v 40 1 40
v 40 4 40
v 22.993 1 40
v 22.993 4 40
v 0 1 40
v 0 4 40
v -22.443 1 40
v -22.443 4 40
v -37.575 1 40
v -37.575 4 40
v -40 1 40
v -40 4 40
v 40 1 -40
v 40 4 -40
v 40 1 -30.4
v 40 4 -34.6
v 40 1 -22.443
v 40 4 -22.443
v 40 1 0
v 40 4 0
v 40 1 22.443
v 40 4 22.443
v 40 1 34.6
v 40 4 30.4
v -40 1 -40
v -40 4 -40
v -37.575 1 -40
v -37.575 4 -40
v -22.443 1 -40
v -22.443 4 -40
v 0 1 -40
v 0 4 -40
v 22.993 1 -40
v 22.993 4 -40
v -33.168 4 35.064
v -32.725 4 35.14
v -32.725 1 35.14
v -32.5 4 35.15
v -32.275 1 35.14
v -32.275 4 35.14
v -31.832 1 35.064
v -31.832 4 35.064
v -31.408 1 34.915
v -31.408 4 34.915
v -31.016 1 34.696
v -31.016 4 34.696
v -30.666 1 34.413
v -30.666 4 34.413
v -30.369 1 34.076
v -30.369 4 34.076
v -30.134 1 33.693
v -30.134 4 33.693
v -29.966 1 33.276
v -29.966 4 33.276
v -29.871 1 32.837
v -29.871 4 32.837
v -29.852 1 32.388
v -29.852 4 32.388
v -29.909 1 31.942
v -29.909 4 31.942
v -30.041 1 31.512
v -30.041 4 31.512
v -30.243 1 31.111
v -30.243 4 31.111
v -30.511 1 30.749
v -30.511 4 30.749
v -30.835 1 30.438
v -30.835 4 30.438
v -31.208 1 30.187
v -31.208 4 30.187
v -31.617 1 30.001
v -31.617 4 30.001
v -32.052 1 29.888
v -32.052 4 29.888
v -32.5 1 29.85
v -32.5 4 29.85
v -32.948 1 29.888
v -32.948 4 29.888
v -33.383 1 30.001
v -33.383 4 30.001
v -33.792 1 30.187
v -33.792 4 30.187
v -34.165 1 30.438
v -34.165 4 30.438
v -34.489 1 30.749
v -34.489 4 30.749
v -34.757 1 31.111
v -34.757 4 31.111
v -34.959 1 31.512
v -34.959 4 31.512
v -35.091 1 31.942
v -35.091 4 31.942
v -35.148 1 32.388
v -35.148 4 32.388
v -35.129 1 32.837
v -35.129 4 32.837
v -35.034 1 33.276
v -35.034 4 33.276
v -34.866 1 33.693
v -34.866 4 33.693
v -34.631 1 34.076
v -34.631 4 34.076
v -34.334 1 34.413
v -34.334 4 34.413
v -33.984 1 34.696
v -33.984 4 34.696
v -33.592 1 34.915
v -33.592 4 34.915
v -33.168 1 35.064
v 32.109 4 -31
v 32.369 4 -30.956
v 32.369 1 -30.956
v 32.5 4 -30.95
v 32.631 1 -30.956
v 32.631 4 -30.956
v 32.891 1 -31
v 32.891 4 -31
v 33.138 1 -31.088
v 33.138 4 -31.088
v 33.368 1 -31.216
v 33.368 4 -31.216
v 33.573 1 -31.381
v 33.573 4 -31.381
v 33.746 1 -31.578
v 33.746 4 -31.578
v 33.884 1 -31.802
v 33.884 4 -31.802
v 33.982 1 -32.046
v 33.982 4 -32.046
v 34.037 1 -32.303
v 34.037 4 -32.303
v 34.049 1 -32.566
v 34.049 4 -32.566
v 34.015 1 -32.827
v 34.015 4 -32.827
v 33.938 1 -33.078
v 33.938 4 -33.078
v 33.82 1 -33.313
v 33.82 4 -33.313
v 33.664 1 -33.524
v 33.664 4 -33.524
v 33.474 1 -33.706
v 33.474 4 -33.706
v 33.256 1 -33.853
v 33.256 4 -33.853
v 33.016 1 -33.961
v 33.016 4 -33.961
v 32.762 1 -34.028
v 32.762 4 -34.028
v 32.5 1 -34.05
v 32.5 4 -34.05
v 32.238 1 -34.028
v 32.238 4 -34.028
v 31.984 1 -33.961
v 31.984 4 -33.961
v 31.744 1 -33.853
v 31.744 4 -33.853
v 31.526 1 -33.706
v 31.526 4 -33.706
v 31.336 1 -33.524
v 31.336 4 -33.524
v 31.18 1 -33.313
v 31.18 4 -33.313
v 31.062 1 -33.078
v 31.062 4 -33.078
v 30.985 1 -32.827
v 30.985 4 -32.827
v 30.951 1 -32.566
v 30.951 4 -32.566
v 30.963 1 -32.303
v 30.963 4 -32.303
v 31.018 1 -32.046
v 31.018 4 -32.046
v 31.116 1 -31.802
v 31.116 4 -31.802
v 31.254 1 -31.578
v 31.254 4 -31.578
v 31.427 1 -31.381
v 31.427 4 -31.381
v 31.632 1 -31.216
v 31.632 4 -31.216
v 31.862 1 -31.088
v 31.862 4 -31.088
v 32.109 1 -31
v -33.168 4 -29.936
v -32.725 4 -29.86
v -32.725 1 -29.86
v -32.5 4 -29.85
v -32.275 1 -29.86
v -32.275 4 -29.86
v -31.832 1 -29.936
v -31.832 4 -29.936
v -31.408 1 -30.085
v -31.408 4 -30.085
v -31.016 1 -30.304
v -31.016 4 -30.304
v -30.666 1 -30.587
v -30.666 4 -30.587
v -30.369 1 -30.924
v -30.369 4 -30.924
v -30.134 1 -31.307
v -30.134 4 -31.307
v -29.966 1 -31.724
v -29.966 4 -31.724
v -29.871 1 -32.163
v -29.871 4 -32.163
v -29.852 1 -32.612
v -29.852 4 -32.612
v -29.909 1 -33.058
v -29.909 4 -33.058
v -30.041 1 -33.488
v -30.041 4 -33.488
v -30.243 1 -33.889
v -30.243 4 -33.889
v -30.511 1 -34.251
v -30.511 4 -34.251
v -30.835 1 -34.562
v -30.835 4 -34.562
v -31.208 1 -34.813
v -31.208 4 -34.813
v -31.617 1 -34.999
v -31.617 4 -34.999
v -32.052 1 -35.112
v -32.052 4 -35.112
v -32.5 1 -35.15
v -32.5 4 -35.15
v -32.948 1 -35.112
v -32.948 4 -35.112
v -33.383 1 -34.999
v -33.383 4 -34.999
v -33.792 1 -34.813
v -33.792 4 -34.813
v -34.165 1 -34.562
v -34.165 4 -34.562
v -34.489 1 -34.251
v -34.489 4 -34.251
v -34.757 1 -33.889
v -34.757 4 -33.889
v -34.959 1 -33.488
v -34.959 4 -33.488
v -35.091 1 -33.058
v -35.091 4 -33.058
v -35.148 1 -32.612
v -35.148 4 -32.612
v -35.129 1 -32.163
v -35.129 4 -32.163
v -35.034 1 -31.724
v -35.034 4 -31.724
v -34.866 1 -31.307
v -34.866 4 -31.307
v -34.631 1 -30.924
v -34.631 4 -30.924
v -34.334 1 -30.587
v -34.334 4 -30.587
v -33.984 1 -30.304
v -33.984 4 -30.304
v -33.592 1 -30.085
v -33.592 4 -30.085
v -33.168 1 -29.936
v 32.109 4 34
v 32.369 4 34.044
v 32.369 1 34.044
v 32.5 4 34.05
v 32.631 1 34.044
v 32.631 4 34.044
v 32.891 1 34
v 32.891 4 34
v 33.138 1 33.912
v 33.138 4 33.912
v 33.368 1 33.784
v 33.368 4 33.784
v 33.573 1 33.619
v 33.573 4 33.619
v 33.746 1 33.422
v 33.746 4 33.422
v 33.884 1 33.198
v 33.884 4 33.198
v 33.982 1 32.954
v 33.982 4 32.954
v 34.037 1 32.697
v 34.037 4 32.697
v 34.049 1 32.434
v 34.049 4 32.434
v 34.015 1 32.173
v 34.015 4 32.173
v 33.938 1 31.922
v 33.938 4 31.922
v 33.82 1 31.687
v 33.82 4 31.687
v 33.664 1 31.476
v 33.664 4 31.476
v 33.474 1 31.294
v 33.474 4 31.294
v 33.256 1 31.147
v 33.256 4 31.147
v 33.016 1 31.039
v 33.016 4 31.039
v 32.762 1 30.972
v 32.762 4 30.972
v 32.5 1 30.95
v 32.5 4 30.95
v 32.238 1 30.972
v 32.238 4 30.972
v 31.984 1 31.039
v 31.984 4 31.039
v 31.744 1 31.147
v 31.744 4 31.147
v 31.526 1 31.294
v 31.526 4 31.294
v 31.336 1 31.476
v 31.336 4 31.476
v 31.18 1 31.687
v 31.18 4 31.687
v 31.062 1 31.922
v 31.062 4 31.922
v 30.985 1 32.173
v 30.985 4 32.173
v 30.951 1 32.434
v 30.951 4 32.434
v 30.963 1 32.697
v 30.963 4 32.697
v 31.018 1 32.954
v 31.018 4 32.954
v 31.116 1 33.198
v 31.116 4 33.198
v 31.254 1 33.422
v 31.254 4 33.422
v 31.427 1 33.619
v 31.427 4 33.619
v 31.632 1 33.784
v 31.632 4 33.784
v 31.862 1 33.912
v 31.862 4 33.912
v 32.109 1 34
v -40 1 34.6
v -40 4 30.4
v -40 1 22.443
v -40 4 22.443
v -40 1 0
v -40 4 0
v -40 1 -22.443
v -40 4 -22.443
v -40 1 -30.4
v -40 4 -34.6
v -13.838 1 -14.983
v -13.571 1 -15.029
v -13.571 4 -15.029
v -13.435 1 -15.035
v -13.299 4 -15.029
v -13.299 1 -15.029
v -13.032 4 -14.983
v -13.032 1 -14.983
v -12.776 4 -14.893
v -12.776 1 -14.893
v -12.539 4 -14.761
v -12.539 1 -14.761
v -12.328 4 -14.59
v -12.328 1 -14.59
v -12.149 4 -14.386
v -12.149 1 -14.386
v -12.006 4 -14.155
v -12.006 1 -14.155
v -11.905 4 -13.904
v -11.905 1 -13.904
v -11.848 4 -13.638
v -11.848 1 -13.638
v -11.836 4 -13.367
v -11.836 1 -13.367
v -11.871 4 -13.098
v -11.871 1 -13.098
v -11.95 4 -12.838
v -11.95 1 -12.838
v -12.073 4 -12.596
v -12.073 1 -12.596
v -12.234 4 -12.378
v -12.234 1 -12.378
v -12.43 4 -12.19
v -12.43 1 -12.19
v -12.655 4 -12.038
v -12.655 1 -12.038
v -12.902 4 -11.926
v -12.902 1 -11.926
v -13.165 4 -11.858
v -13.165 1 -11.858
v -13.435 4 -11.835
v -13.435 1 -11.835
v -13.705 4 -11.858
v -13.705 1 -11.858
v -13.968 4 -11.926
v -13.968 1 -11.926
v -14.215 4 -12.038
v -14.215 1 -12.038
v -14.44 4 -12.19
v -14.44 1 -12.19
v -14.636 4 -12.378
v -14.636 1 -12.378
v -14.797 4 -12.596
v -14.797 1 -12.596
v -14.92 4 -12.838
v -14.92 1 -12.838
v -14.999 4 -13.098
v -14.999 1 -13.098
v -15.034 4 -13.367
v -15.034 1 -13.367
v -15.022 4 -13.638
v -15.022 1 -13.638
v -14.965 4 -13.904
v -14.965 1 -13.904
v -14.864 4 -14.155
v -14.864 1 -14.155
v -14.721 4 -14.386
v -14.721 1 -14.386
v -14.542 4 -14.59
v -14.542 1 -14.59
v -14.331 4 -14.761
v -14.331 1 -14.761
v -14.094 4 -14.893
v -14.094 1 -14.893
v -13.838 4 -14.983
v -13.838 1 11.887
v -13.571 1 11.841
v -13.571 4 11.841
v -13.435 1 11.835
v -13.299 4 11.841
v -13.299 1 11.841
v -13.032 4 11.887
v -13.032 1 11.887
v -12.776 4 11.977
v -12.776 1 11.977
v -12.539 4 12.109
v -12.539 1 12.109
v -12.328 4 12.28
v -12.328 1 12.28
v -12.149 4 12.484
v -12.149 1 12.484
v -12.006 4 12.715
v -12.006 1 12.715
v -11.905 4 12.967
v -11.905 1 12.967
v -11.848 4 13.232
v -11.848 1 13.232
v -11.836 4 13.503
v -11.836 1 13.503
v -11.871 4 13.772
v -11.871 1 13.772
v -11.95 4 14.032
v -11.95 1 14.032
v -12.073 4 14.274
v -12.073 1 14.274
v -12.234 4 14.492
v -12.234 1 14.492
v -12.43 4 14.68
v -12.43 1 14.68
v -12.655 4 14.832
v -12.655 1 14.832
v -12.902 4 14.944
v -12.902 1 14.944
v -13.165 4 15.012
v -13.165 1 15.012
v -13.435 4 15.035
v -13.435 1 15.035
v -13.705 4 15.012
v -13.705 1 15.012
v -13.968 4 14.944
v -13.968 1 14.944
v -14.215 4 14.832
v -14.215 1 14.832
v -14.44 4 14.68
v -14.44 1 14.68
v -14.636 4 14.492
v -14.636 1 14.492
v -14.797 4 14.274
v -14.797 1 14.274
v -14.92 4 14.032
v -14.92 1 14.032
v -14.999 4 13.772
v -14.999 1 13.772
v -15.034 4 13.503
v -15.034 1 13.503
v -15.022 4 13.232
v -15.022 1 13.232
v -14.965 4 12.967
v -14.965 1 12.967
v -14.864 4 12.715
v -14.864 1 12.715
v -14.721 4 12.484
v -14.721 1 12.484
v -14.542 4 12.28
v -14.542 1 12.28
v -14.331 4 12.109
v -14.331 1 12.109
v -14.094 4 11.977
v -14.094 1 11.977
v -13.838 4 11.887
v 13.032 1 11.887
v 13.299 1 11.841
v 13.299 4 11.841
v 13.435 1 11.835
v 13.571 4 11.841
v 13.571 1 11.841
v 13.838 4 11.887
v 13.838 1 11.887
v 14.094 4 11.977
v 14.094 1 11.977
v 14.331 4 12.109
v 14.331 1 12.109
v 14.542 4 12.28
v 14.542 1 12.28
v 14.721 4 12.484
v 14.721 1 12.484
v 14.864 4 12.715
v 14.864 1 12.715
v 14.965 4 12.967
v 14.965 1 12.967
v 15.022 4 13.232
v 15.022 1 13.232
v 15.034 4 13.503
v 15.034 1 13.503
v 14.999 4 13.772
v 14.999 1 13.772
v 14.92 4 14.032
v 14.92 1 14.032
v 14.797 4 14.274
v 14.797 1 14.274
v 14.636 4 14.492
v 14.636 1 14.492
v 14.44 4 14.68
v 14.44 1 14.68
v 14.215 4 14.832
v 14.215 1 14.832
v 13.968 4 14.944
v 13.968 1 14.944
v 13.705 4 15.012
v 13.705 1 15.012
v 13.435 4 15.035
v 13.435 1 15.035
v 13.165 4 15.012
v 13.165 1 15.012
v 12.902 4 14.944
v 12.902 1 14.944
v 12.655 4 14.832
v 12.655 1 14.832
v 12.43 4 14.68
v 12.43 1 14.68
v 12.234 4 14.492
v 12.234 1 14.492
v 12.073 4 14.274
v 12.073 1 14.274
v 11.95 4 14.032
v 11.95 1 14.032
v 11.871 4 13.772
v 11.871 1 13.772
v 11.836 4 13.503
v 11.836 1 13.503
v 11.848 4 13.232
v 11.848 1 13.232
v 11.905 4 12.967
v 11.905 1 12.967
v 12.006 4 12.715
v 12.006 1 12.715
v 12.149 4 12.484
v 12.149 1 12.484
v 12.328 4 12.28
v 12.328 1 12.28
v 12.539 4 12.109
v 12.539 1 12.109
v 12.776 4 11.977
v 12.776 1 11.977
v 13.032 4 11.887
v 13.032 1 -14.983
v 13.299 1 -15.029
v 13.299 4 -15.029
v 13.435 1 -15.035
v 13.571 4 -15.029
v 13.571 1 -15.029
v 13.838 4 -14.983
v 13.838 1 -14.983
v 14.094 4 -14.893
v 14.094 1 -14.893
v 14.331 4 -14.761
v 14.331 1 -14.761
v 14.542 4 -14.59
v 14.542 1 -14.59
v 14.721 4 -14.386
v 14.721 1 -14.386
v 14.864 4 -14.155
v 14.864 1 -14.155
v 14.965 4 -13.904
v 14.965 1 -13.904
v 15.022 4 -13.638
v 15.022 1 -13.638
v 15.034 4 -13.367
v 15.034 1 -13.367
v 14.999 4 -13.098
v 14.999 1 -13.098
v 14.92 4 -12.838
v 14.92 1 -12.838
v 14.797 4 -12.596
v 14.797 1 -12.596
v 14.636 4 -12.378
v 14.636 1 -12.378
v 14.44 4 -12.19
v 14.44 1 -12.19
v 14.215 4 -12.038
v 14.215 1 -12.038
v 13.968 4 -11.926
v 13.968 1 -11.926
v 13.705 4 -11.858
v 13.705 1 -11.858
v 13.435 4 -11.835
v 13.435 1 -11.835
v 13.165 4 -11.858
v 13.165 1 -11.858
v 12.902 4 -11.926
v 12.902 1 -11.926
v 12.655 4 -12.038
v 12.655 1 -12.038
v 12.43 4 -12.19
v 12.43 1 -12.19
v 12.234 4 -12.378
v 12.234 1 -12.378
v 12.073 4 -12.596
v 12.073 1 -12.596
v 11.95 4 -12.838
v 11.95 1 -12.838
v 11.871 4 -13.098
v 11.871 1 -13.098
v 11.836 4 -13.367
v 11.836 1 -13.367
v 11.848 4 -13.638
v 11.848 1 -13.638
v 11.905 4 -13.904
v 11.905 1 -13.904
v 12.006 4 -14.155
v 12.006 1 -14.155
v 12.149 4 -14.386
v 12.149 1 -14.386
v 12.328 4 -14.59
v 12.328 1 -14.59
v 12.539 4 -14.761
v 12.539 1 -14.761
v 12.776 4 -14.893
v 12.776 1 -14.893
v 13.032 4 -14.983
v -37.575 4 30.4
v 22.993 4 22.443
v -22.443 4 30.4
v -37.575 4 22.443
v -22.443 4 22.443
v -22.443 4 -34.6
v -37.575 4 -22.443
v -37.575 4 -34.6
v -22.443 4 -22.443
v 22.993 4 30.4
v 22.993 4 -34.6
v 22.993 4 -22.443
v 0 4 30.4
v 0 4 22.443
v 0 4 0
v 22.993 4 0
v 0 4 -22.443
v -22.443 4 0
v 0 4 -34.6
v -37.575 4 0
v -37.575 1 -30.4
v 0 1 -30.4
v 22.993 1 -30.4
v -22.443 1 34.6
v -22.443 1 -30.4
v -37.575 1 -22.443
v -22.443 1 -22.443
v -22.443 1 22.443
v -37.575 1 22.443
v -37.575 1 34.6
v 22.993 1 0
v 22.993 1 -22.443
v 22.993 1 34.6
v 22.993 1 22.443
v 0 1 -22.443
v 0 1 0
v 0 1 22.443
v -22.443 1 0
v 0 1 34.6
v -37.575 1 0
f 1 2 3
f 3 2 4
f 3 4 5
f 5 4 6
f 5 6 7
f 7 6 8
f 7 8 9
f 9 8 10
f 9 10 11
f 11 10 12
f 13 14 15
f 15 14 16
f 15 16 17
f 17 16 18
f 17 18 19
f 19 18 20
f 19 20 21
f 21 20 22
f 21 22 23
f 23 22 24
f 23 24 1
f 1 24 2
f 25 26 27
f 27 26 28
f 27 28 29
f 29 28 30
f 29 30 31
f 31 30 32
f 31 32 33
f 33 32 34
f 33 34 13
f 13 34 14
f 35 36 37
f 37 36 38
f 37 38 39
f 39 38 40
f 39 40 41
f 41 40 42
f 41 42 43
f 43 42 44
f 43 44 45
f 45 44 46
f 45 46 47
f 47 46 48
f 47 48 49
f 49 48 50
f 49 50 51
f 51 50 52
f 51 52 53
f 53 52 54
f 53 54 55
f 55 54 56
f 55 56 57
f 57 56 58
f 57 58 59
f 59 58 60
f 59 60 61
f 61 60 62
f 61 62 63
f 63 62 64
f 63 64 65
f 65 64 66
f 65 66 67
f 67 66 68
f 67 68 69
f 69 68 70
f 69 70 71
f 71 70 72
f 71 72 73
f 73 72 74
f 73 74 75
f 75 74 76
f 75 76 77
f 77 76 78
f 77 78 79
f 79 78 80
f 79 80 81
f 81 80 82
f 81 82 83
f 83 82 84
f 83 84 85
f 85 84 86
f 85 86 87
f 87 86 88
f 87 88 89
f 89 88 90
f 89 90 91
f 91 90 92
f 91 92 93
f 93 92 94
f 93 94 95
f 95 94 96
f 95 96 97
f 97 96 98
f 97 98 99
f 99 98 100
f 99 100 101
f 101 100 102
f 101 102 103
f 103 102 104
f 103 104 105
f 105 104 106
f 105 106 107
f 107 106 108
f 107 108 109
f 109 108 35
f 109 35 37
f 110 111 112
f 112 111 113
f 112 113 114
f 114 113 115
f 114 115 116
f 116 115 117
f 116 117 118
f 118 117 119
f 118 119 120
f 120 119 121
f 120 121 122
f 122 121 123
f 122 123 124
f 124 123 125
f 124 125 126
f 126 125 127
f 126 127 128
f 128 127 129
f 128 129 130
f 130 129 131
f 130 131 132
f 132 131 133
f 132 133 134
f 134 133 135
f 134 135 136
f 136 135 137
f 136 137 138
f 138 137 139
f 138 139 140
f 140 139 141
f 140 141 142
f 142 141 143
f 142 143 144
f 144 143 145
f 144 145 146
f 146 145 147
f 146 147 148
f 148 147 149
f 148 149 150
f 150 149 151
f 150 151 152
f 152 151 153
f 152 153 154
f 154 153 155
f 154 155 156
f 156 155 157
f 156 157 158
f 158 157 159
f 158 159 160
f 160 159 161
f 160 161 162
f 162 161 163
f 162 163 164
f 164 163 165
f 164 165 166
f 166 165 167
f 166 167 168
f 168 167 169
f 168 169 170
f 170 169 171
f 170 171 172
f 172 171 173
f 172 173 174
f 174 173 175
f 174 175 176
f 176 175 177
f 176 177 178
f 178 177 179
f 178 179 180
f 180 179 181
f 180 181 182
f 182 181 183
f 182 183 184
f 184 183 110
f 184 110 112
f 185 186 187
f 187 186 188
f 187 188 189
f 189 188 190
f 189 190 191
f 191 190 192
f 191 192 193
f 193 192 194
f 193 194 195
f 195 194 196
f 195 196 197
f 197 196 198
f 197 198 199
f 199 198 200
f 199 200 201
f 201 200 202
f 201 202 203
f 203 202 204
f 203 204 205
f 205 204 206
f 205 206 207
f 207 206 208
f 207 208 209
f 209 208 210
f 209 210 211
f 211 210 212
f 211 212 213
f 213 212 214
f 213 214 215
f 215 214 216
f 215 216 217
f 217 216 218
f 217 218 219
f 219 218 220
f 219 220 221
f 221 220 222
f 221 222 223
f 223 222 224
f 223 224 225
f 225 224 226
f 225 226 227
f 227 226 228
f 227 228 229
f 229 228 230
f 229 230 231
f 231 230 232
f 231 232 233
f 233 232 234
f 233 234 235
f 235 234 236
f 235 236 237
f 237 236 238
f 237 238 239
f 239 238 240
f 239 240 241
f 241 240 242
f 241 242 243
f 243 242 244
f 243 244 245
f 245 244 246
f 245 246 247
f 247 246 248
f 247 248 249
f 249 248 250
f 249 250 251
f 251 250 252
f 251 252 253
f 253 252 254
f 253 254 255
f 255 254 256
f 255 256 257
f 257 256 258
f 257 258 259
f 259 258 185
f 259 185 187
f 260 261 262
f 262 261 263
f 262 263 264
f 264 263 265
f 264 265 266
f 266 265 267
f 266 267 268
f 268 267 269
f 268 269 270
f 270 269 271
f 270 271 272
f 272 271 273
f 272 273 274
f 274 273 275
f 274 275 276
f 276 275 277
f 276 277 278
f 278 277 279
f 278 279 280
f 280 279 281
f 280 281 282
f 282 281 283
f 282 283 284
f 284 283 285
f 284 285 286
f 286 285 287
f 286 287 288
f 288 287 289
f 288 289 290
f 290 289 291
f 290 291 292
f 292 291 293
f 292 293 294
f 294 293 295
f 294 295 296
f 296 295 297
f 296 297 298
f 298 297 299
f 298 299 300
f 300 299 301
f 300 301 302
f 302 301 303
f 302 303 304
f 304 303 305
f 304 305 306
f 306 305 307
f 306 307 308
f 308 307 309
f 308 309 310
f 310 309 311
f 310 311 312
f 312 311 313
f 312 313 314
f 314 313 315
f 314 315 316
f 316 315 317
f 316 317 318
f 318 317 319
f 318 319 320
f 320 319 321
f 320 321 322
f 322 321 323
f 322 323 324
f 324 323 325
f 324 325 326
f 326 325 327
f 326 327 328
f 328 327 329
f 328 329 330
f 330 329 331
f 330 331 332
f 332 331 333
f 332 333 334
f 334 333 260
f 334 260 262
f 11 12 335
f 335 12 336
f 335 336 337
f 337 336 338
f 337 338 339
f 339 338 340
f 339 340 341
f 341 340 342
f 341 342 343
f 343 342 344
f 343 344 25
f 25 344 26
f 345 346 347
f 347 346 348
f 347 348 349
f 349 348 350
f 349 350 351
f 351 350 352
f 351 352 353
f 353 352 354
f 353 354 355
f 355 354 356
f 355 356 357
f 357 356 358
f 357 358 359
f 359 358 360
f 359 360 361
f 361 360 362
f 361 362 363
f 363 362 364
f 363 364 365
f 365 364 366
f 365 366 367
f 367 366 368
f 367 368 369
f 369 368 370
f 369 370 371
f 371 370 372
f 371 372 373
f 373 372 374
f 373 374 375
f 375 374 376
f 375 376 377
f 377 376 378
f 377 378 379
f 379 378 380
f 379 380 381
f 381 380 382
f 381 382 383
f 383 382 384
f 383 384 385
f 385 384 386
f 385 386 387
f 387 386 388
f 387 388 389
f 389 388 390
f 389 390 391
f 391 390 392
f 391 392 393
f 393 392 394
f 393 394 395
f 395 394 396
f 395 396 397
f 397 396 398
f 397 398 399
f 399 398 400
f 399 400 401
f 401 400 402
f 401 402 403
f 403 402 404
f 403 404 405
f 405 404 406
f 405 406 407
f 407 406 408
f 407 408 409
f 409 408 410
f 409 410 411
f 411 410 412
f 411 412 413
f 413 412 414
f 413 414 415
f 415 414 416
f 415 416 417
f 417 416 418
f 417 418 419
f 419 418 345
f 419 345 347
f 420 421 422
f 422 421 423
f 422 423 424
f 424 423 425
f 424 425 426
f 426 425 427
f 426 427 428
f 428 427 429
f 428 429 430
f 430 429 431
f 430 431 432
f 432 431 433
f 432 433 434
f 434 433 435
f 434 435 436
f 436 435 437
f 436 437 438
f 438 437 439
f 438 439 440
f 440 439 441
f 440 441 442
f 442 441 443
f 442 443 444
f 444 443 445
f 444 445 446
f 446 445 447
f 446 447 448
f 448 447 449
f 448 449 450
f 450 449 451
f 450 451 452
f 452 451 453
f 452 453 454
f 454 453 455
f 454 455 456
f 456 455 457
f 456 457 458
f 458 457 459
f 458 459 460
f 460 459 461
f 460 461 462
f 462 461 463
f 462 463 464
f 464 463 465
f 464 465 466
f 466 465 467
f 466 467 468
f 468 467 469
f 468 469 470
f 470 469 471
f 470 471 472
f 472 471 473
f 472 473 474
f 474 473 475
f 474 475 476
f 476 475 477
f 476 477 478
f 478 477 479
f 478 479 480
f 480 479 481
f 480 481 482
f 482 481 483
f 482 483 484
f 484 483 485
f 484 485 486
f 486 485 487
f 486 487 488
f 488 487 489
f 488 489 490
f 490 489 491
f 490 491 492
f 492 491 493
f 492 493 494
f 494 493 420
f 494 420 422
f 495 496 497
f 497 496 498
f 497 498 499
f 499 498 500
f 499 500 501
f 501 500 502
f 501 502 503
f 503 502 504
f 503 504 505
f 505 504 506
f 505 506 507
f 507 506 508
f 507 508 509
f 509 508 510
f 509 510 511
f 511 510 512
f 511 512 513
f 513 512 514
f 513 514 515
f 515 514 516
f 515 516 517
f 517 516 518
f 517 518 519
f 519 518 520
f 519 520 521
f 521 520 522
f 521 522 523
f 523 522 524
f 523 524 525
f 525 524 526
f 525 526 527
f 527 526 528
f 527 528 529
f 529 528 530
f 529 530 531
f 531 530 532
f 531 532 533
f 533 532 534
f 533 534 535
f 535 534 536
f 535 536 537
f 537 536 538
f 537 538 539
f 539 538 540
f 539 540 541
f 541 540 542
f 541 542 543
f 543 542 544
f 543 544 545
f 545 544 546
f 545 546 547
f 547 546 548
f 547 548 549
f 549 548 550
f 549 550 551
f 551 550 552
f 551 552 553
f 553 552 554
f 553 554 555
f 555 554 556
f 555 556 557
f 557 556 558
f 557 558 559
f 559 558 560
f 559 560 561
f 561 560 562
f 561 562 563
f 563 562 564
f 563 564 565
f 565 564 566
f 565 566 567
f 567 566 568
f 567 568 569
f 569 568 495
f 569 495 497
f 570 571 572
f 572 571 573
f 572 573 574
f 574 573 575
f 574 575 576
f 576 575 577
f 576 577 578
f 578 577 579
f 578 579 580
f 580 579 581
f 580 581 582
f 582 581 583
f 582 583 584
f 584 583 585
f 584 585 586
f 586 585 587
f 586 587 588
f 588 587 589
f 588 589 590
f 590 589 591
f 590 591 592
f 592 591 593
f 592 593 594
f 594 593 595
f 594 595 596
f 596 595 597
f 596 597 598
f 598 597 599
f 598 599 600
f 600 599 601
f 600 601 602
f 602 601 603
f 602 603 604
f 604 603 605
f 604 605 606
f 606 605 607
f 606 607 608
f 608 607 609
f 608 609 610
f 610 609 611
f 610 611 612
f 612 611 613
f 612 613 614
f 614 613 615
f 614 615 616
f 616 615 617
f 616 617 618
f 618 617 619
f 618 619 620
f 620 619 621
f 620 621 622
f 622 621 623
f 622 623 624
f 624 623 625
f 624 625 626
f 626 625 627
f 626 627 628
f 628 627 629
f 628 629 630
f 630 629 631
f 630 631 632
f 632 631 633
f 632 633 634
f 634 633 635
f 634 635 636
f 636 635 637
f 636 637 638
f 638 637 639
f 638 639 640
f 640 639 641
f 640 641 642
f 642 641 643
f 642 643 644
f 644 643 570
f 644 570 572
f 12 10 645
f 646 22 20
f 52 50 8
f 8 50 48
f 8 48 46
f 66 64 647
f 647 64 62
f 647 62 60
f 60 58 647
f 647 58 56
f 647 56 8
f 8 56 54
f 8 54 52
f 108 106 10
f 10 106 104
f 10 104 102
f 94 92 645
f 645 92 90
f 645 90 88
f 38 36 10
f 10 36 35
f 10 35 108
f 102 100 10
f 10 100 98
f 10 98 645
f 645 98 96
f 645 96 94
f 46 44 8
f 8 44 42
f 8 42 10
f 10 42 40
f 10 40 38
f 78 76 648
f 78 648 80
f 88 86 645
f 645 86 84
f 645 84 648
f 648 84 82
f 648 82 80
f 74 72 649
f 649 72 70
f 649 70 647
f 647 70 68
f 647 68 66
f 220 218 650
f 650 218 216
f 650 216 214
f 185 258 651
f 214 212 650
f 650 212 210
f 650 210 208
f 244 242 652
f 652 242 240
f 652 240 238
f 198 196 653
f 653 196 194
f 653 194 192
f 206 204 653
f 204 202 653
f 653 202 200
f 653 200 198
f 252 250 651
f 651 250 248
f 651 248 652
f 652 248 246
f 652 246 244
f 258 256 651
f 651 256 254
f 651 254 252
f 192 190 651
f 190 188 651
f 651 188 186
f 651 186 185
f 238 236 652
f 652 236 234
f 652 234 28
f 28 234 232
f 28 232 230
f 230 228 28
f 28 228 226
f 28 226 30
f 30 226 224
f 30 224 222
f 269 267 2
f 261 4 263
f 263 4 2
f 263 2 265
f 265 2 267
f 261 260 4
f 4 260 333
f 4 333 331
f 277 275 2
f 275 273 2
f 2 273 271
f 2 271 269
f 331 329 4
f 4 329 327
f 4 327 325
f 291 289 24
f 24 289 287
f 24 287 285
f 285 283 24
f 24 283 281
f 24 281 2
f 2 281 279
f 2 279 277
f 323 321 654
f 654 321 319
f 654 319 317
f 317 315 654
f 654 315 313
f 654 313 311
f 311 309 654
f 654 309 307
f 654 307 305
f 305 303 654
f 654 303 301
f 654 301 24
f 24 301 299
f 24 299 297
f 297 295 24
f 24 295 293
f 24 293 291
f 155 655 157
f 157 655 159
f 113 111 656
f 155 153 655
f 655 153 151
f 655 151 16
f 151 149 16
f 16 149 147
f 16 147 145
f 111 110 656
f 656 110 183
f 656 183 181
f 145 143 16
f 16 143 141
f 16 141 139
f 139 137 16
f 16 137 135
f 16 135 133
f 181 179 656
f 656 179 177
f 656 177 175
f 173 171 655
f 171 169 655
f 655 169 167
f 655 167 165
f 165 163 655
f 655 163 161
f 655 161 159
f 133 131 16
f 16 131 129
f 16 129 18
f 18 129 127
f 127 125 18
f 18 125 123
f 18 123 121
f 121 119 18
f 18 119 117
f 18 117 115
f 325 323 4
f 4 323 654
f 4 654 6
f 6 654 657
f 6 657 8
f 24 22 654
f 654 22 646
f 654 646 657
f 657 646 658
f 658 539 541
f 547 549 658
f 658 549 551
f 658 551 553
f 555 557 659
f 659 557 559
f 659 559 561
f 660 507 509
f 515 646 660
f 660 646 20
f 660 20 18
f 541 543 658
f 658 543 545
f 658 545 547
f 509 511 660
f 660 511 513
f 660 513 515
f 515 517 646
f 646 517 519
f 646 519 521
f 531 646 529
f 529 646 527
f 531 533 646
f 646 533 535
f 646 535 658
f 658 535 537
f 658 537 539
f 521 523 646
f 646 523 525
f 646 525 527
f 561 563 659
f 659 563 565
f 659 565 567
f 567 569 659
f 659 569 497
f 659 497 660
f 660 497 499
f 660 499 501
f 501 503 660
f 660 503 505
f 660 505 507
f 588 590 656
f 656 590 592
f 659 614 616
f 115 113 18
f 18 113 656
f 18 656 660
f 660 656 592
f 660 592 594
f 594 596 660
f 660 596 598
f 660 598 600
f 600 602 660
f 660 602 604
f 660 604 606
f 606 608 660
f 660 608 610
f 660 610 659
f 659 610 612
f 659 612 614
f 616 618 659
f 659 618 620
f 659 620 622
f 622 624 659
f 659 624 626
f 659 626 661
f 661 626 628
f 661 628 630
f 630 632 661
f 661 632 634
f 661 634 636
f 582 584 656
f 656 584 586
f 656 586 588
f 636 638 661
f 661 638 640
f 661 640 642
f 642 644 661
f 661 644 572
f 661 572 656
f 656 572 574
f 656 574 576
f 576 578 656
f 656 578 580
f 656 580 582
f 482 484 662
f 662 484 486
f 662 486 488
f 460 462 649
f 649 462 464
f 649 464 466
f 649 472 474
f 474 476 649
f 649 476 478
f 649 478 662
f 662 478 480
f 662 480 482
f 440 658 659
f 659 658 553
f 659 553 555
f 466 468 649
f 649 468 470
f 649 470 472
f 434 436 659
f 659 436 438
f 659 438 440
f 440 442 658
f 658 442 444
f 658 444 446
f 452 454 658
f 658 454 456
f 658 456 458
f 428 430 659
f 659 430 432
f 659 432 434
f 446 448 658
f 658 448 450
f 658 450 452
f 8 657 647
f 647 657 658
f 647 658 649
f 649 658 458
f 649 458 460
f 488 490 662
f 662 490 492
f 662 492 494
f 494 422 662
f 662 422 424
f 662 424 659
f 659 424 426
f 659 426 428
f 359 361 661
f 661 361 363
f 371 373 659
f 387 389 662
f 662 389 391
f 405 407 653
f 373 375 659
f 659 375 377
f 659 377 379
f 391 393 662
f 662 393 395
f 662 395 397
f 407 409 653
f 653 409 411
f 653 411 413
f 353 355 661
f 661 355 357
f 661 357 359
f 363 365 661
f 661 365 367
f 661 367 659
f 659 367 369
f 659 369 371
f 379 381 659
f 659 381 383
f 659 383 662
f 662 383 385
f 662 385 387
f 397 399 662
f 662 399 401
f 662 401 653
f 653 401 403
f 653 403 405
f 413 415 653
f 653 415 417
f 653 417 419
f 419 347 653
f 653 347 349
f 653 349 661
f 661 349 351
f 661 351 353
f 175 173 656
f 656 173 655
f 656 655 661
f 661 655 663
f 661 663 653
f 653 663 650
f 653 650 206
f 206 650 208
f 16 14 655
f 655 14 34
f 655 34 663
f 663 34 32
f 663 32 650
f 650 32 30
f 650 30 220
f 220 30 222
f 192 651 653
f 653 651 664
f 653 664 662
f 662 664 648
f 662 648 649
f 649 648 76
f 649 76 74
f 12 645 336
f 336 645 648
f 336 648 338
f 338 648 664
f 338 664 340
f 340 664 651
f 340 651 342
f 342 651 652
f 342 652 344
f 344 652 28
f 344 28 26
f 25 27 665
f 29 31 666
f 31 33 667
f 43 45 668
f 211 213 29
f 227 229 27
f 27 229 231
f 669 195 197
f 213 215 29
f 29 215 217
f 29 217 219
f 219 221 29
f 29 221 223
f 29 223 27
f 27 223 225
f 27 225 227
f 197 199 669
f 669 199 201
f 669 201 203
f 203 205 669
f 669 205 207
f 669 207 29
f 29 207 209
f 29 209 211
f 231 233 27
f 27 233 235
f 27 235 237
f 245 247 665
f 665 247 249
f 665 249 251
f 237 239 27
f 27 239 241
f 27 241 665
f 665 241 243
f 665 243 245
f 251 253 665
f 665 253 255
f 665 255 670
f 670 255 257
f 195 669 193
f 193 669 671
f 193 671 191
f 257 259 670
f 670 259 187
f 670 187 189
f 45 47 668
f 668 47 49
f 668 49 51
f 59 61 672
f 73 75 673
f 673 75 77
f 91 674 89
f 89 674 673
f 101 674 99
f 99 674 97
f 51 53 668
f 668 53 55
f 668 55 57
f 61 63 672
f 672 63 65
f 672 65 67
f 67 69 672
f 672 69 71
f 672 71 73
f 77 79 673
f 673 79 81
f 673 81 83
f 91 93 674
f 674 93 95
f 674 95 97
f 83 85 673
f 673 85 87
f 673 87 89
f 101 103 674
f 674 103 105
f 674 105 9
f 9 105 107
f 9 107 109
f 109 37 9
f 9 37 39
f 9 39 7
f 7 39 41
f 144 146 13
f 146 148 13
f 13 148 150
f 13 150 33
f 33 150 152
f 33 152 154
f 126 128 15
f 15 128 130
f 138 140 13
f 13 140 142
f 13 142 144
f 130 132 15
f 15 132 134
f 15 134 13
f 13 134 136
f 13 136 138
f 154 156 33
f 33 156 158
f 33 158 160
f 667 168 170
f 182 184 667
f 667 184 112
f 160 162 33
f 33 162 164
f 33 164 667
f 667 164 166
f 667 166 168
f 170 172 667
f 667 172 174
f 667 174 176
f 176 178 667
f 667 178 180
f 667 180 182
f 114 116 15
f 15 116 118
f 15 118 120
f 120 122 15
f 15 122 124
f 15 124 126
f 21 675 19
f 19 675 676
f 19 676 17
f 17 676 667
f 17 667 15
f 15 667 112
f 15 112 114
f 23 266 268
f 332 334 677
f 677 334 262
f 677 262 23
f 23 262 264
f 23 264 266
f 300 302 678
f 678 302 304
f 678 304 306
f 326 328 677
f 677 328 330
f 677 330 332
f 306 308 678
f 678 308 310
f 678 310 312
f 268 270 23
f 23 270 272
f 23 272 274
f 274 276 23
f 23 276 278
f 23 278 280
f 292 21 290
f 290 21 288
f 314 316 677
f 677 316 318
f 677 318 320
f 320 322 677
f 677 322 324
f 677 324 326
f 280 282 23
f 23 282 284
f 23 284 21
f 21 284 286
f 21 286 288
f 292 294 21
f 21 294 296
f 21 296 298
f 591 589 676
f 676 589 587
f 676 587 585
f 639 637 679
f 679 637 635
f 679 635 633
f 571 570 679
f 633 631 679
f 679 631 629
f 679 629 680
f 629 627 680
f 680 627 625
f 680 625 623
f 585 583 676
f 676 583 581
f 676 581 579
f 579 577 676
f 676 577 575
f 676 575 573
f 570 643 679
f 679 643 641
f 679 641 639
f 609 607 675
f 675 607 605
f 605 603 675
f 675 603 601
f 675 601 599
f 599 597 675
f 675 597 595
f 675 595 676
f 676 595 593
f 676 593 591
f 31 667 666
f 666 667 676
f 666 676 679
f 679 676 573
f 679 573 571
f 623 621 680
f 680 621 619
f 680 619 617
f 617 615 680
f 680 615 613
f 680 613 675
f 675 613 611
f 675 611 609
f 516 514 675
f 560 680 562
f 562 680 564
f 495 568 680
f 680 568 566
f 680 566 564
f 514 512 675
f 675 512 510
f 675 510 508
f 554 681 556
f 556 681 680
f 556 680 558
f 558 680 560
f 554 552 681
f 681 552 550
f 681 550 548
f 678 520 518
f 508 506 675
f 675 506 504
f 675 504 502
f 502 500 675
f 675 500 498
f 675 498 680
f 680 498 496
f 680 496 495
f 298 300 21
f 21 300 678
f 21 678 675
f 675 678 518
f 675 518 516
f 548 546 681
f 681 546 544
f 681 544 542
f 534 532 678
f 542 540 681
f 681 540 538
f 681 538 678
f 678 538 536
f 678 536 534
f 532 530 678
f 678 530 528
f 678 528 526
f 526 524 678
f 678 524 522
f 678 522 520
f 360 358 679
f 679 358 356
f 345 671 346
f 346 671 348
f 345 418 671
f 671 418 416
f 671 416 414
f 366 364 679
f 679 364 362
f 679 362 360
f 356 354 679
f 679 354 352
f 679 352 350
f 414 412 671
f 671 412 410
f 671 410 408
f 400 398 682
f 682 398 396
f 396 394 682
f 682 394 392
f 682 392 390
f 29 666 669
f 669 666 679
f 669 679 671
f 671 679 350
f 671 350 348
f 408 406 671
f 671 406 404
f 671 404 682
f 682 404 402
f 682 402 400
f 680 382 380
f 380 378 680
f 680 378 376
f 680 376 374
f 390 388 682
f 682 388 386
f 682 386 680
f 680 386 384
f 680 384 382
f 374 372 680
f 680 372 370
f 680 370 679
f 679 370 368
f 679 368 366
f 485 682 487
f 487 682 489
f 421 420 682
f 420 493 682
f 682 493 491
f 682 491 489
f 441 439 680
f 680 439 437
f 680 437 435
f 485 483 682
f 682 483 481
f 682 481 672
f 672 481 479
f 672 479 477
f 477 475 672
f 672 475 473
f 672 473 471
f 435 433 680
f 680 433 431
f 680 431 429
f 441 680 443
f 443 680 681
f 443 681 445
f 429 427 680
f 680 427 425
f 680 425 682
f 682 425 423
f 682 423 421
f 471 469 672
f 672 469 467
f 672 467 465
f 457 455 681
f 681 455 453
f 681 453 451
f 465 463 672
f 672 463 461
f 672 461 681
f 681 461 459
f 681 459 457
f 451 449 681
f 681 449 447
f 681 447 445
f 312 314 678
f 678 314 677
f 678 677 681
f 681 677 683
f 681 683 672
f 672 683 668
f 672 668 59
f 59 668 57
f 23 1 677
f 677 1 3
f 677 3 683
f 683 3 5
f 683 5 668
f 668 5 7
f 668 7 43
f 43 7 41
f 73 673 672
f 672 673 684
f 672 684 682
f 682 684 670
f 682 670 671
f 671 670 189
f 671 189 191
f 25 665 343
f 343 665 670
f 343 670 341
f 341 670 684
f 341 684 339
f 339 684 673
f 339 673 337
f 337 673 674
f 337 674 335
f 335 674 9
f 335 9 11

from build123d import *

# Parameters (mm, degrees)
SKETCH_1_W          = 80
SKETCH_1_H          = 80
SKETCH_1_R          = 2.65
SKETCH_1_R_2        = 1.55
EXTRUDE_1_DEPTH     = 4
SKETCH_2_R          = 1.6
CUT_EXTRUDE_1_DEPTH = 57.709787515
SKETCH_3_W          = 114.446601022
SKETCH_3_H          = 92.900037665
CUT_EXTRUDE_2_DEPTH = 1


with BuildPart() as part:
    # 草图1 → 凸台-拉伸1 (new body)
    with BuildSketch(Plane(origin=(0, 0, 0), x_dir=(1, 0, 0), z_dir=(0, 1, 0))):
        Rectangle(SKETCH_1_W, SKETCH_1_H)
        with Locations(Location((-32.5, 32.5, 0), (0, 0, 270))):
            Circle(SKETCH_1_R, mode=Mode.SUBTRACT)
        with Locations(Location((-32.5, -32.5, 0), (0, 0, 270))):
            Circle(SKETCH_1_R, mode=Mode.SUBTRACT)
        with Locations(Location((32.5, 32.5, 0), (0, 0, 270))):
            Circle(SKETCH_1_R_2, mode=Mode.SUBTRACT)
        with Locations(Location((32.5, -32.5, 0), (0, 0, 270))):
            Circle(SKETCH_1_R_2, mode=Mode.SUBTRACT)
    extrude(amount=EXTRUDE_1_DEPTH)

    # 草图2 → 切除-拉伸1 (cut, through all)
    with BuildSketch(Plane(origin=(0, 4, 0), x_dir=(1, 0, 0), z_dir=(0, 1, 0))):
        with Locations(Location((13.435028843, 13.435028843, 0), (0, 0, 270))):
            Circle(SKETCH_2_R)
        with Locations(Location((13.435028843, -13.435028843, 0), (0, 0, 270))):
            Circle(SKETCH_2_R)
        with Locations(Location((-13.435028843, -13.435028843, 0), (0, 0, 270))):
            Circle(SKETCH_2_R)
        with Locations(Location((-13.435028843, 13.435028843, 0), (0, 0, 270))):
            Circle(SKETCH_2_R)
    extrude(amount=-CUT_EXTRUDE_1_DEPTH, mode=Mode.SUBTRACT)

    # 草图3 → 切除-拉伸2 (cut)
    with BuildSketch(Plane.XZ):
        with Locations((9.368071025, -1.951681463)):
            Rectangle(SKETCH_3_W, SKETCH_3_H)
    extrude(amount=-CUT_EXTRUDE_2_DEPTH, mode=Mode.SUBTRACT)


solid = part.part
